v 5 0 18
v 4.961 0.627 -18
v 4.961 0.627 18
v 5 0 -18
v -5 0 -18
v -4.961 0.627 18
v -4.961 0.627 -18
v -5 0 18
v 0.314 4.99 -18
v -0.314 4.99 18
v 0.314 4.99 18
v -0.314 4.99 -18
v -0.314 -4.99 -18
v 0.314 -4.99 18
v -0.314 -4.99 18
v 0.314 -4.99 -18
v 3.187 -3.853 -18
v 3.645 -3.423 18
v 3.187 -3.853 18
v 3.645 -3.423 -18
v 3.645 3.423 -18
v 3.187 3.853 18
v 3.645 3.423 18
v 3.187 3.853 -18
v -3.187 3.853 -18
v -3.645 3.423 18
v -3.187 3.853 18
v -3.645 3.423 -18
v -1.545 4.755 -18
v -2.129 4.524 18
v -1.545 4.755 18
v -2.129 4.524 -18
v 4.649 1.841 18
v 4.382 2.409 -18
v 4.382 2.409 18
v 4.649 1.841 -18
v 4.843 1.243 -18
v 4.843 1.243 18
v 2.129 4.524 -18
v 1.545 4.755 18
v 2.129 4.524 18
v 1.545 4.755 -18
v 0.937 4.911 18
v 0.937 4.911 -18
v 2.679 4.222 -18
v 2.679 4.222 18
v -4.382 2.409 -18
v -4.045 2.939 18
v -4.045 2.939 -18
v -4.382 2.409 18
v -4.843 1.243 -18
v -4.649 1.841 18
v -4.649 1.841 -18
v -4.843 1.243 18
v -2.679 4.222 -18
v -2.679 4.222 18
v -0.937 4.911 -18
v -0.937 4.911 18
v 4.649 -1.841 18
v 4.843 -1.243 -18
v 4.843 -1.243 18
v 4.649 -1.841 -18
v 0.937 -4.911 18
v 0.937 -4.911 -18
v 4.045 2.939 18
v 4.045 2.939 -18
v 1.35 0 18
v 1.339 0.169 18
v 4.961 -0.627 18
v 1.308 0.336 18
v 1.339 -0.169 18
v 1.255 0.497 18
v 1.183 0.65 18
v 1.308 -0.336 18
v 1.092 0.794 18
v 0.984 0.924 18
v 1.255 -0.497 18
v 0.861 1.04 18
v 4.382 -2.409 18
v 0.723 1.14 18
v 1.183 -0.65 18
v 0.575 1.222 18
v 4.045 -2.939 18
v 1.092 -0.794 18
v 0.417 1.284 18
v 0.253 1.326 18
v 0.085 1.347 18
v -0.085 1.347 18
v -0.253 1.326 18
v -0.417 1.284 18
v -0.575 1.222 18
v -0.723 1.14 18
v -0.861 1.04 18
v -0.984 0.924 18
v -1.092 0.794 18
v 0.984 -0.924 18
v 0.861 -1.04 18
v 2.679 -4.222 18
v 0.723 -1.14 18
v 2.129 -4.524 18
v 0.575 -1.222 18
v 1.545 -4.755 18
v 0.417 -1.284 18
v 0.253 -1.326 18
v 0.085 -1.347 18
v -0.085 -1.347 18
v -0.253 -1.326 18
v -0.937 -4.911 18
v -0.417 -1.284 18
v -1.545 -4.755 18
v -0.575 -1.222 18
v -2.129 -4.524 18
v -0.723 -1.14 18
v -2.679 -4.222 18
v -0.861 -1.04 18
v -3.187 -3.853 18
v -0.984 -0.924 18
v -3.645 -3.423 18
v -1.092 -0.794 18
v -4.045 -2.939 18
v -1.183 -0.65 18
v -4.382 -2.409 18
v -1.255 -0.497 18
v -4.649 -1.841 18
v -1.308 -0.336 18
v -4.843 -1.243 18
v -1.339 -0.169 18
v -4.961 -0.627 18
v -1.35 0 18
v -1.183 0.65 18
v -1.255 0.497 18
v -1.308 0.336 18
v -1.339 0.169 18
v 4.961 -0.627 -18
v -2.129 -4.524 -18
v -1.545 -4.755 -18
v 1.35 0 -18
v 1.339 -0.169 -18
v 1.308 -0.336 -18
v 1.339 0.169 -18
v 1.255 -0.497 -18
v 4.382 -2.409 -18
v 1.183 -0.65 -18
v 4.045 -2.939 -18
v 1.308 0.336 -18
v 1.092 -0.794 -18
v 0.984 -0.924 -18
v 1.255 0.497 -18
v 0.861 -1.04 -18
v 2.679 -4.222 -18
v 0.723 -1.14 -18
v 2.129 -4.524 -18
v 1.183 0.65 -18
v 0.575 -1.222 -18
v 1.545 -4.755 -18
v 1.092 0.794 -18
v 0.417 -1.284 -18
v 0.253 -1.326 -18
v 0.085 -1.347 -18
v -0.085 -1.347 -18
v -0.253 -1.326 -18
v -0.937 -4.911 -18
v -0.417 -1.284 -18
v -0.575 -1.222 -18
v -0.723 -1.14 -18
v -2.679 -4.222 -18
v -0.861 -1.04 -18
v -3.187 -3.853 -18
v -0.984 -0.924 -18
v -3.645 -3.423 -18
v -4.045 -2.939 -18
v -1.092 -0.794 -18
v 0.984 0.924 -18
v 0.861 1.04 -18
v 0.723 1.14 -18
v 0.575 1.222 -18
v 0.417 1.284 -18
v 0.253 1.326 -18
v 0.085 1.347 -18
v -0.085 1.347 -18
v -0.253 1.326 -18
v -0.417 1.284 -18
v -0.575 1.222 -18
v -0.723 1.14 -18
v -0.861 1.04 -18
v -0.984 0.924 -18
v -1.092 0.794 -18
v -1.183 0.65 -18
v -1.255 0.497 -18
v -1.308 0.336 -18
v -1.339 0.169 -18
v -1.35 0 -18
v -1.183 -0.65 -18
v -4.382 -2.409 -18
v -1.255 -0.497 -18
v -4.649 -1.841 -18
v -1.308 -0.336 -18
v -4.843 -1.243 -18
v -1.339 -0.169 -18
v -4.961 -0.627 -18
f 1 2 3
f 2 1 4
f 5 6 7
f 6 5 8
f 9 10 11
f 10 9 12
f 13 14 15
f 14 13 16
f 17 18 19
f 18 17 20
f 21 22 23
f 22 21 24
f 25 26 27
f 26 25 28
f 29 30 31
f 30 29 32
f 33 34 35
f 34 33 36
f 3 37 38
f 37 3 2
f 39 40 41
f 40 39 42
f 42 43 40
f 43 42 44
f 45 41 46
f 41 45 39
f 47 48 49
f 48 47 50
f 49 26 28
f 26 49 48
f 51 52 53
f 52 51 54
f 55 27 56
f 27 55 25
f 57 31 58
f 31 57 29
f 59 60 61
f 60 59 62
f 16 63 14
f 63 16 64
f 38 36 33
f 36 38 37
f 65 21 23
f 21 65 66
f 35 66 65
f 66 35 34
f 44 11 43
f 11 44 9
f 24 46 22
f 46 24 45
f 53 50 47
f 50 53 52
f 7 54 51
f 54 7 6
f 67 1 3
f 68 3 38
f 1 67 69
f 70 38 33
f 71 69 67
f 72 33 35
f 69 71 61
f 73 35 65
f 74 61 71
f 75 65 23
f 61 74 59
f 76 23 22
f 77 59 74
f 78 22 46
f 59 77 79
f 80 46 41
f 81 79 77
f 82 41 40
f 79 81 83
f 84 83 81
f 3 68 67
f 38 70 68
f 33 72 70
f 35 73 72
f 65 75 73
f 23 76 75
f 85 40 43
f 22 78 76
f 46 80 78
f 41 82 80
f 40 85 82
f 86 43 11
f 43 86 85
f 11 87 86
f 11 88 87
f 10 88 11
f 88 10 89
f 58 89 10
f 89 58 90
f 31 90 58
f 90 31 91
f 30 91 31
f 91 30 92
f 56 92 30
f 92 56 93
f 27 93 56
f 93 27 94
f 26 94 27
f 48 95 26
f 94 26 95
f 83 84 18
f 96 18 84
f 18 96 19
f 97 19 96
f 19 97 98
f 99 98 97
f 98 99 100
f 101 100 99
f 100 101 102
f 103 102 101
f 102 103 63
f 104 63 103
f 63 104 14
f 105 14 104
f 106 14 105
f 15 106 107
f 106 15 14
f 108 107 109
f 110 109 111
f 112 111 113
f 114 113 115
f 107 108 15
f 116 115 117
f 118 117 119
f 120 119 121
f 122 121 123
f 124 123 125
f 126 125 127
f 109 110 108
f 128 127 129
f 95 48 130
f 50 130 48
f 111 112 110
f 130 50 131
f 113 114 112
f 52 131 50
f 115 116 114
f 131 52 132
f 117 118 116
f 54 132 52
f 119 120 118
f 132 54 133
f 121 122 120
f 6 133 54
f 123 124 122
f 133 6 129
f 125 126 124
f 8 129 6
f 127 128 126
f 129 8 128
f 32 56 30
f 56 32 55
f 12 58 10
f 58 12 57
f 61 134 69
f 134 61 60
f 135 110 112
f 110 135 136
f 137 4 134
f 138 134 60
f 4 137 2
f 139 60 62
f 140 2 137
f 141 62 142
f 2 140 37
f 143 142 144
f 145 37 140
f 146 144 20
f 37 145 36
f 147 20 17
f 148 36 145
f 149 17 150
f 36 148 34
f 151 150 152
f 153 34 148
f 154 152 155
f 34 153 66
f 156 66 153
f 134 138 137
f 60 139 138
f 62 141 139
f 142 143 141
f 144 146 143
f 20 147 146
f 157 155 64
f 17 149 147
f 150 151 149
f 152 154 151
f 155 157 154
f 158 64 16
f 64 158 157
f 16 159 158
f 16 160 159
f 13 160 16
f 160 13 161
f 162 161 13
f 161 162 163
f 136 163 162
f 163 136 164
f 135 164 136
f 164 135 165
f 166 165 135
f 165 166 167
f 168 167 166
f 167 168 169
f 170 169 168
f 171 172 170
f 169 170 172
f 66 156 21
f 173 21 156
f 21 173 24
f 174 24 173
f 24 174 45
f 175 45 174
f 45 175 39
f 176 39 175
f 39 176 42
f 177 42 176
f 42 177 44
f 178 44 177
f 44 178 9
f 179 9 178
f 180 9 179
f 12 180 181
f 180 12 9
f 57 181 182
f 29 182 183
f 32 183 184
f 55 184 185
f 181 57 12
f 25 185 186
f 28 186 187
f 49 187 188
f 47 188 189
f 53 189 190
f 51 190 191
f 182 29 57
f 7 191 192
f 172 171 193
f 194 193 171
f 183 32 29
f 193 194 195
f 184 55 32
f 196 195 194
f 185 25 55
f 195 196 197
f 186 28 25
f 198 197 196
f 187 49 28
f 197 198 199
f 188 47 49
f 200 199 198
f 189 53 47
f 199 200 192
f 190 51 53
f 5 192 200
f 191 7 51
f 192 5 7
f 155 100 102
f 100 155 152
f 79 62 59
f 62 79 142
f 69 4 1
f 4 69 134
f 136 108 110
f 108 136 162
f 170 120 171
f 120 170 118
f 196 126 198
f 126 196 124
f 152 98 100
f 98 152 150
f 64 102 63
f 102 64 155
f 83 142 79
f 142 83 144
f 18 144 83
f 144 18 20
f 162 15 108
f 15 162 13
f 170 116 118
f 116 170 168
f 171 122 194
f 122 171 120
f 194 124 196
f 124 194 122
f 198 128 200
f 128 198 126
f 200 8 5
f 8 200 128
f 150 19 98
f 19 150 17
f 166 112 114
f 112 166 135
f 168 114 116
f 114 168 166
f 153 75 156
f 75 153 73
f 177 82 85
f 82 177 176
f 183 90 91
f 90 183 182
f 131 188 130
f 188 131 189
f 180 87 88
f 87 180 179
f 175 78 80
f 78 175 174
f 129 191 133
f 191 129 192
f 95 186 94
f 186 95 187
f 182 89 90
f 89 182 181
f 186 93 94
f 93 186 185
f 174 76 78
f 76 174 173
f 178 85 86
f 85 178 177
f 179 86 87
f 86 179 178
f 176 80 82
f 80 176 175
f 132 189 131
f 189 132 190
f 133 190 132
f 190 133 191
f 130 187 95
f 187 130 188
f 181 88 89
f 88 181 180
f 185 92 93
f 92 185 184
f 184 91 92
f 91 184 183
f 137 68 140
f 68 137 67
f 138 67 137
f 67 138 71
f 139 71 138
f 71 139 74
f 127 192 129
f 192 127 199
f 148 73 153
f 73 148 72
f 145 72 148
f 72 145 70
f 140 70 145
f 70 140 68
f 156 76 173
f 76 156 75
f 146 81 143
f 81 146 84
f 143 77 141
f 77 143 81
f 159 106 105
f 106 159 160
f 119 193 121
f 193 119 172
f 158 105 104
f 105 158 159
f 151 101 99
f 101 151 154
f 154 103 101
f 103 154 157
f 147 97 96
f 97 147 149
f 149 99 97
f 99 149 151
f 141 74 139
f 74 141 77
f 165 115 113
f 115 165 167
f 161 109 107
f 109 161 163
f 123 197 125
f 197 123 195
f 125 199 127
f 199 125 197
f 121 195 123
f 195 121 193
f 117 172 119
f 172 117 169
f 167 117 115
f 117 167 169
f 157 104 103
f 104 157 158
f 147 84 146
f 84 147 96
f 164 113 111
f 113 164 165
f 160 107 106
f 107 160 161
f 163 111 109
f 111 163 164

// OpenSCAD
$fn = 50;


difference() {
	union() {
		translate(v = [0, 0, -18.0000000000]) {
			cylinder(h = 36, r = 5.0000000000);
		}
	}
	union() {
		translate(v = [0, 0, -100.0000000000]) {
			cylinder(h = 200, r = 1.3500000000);
		}
	}
}
